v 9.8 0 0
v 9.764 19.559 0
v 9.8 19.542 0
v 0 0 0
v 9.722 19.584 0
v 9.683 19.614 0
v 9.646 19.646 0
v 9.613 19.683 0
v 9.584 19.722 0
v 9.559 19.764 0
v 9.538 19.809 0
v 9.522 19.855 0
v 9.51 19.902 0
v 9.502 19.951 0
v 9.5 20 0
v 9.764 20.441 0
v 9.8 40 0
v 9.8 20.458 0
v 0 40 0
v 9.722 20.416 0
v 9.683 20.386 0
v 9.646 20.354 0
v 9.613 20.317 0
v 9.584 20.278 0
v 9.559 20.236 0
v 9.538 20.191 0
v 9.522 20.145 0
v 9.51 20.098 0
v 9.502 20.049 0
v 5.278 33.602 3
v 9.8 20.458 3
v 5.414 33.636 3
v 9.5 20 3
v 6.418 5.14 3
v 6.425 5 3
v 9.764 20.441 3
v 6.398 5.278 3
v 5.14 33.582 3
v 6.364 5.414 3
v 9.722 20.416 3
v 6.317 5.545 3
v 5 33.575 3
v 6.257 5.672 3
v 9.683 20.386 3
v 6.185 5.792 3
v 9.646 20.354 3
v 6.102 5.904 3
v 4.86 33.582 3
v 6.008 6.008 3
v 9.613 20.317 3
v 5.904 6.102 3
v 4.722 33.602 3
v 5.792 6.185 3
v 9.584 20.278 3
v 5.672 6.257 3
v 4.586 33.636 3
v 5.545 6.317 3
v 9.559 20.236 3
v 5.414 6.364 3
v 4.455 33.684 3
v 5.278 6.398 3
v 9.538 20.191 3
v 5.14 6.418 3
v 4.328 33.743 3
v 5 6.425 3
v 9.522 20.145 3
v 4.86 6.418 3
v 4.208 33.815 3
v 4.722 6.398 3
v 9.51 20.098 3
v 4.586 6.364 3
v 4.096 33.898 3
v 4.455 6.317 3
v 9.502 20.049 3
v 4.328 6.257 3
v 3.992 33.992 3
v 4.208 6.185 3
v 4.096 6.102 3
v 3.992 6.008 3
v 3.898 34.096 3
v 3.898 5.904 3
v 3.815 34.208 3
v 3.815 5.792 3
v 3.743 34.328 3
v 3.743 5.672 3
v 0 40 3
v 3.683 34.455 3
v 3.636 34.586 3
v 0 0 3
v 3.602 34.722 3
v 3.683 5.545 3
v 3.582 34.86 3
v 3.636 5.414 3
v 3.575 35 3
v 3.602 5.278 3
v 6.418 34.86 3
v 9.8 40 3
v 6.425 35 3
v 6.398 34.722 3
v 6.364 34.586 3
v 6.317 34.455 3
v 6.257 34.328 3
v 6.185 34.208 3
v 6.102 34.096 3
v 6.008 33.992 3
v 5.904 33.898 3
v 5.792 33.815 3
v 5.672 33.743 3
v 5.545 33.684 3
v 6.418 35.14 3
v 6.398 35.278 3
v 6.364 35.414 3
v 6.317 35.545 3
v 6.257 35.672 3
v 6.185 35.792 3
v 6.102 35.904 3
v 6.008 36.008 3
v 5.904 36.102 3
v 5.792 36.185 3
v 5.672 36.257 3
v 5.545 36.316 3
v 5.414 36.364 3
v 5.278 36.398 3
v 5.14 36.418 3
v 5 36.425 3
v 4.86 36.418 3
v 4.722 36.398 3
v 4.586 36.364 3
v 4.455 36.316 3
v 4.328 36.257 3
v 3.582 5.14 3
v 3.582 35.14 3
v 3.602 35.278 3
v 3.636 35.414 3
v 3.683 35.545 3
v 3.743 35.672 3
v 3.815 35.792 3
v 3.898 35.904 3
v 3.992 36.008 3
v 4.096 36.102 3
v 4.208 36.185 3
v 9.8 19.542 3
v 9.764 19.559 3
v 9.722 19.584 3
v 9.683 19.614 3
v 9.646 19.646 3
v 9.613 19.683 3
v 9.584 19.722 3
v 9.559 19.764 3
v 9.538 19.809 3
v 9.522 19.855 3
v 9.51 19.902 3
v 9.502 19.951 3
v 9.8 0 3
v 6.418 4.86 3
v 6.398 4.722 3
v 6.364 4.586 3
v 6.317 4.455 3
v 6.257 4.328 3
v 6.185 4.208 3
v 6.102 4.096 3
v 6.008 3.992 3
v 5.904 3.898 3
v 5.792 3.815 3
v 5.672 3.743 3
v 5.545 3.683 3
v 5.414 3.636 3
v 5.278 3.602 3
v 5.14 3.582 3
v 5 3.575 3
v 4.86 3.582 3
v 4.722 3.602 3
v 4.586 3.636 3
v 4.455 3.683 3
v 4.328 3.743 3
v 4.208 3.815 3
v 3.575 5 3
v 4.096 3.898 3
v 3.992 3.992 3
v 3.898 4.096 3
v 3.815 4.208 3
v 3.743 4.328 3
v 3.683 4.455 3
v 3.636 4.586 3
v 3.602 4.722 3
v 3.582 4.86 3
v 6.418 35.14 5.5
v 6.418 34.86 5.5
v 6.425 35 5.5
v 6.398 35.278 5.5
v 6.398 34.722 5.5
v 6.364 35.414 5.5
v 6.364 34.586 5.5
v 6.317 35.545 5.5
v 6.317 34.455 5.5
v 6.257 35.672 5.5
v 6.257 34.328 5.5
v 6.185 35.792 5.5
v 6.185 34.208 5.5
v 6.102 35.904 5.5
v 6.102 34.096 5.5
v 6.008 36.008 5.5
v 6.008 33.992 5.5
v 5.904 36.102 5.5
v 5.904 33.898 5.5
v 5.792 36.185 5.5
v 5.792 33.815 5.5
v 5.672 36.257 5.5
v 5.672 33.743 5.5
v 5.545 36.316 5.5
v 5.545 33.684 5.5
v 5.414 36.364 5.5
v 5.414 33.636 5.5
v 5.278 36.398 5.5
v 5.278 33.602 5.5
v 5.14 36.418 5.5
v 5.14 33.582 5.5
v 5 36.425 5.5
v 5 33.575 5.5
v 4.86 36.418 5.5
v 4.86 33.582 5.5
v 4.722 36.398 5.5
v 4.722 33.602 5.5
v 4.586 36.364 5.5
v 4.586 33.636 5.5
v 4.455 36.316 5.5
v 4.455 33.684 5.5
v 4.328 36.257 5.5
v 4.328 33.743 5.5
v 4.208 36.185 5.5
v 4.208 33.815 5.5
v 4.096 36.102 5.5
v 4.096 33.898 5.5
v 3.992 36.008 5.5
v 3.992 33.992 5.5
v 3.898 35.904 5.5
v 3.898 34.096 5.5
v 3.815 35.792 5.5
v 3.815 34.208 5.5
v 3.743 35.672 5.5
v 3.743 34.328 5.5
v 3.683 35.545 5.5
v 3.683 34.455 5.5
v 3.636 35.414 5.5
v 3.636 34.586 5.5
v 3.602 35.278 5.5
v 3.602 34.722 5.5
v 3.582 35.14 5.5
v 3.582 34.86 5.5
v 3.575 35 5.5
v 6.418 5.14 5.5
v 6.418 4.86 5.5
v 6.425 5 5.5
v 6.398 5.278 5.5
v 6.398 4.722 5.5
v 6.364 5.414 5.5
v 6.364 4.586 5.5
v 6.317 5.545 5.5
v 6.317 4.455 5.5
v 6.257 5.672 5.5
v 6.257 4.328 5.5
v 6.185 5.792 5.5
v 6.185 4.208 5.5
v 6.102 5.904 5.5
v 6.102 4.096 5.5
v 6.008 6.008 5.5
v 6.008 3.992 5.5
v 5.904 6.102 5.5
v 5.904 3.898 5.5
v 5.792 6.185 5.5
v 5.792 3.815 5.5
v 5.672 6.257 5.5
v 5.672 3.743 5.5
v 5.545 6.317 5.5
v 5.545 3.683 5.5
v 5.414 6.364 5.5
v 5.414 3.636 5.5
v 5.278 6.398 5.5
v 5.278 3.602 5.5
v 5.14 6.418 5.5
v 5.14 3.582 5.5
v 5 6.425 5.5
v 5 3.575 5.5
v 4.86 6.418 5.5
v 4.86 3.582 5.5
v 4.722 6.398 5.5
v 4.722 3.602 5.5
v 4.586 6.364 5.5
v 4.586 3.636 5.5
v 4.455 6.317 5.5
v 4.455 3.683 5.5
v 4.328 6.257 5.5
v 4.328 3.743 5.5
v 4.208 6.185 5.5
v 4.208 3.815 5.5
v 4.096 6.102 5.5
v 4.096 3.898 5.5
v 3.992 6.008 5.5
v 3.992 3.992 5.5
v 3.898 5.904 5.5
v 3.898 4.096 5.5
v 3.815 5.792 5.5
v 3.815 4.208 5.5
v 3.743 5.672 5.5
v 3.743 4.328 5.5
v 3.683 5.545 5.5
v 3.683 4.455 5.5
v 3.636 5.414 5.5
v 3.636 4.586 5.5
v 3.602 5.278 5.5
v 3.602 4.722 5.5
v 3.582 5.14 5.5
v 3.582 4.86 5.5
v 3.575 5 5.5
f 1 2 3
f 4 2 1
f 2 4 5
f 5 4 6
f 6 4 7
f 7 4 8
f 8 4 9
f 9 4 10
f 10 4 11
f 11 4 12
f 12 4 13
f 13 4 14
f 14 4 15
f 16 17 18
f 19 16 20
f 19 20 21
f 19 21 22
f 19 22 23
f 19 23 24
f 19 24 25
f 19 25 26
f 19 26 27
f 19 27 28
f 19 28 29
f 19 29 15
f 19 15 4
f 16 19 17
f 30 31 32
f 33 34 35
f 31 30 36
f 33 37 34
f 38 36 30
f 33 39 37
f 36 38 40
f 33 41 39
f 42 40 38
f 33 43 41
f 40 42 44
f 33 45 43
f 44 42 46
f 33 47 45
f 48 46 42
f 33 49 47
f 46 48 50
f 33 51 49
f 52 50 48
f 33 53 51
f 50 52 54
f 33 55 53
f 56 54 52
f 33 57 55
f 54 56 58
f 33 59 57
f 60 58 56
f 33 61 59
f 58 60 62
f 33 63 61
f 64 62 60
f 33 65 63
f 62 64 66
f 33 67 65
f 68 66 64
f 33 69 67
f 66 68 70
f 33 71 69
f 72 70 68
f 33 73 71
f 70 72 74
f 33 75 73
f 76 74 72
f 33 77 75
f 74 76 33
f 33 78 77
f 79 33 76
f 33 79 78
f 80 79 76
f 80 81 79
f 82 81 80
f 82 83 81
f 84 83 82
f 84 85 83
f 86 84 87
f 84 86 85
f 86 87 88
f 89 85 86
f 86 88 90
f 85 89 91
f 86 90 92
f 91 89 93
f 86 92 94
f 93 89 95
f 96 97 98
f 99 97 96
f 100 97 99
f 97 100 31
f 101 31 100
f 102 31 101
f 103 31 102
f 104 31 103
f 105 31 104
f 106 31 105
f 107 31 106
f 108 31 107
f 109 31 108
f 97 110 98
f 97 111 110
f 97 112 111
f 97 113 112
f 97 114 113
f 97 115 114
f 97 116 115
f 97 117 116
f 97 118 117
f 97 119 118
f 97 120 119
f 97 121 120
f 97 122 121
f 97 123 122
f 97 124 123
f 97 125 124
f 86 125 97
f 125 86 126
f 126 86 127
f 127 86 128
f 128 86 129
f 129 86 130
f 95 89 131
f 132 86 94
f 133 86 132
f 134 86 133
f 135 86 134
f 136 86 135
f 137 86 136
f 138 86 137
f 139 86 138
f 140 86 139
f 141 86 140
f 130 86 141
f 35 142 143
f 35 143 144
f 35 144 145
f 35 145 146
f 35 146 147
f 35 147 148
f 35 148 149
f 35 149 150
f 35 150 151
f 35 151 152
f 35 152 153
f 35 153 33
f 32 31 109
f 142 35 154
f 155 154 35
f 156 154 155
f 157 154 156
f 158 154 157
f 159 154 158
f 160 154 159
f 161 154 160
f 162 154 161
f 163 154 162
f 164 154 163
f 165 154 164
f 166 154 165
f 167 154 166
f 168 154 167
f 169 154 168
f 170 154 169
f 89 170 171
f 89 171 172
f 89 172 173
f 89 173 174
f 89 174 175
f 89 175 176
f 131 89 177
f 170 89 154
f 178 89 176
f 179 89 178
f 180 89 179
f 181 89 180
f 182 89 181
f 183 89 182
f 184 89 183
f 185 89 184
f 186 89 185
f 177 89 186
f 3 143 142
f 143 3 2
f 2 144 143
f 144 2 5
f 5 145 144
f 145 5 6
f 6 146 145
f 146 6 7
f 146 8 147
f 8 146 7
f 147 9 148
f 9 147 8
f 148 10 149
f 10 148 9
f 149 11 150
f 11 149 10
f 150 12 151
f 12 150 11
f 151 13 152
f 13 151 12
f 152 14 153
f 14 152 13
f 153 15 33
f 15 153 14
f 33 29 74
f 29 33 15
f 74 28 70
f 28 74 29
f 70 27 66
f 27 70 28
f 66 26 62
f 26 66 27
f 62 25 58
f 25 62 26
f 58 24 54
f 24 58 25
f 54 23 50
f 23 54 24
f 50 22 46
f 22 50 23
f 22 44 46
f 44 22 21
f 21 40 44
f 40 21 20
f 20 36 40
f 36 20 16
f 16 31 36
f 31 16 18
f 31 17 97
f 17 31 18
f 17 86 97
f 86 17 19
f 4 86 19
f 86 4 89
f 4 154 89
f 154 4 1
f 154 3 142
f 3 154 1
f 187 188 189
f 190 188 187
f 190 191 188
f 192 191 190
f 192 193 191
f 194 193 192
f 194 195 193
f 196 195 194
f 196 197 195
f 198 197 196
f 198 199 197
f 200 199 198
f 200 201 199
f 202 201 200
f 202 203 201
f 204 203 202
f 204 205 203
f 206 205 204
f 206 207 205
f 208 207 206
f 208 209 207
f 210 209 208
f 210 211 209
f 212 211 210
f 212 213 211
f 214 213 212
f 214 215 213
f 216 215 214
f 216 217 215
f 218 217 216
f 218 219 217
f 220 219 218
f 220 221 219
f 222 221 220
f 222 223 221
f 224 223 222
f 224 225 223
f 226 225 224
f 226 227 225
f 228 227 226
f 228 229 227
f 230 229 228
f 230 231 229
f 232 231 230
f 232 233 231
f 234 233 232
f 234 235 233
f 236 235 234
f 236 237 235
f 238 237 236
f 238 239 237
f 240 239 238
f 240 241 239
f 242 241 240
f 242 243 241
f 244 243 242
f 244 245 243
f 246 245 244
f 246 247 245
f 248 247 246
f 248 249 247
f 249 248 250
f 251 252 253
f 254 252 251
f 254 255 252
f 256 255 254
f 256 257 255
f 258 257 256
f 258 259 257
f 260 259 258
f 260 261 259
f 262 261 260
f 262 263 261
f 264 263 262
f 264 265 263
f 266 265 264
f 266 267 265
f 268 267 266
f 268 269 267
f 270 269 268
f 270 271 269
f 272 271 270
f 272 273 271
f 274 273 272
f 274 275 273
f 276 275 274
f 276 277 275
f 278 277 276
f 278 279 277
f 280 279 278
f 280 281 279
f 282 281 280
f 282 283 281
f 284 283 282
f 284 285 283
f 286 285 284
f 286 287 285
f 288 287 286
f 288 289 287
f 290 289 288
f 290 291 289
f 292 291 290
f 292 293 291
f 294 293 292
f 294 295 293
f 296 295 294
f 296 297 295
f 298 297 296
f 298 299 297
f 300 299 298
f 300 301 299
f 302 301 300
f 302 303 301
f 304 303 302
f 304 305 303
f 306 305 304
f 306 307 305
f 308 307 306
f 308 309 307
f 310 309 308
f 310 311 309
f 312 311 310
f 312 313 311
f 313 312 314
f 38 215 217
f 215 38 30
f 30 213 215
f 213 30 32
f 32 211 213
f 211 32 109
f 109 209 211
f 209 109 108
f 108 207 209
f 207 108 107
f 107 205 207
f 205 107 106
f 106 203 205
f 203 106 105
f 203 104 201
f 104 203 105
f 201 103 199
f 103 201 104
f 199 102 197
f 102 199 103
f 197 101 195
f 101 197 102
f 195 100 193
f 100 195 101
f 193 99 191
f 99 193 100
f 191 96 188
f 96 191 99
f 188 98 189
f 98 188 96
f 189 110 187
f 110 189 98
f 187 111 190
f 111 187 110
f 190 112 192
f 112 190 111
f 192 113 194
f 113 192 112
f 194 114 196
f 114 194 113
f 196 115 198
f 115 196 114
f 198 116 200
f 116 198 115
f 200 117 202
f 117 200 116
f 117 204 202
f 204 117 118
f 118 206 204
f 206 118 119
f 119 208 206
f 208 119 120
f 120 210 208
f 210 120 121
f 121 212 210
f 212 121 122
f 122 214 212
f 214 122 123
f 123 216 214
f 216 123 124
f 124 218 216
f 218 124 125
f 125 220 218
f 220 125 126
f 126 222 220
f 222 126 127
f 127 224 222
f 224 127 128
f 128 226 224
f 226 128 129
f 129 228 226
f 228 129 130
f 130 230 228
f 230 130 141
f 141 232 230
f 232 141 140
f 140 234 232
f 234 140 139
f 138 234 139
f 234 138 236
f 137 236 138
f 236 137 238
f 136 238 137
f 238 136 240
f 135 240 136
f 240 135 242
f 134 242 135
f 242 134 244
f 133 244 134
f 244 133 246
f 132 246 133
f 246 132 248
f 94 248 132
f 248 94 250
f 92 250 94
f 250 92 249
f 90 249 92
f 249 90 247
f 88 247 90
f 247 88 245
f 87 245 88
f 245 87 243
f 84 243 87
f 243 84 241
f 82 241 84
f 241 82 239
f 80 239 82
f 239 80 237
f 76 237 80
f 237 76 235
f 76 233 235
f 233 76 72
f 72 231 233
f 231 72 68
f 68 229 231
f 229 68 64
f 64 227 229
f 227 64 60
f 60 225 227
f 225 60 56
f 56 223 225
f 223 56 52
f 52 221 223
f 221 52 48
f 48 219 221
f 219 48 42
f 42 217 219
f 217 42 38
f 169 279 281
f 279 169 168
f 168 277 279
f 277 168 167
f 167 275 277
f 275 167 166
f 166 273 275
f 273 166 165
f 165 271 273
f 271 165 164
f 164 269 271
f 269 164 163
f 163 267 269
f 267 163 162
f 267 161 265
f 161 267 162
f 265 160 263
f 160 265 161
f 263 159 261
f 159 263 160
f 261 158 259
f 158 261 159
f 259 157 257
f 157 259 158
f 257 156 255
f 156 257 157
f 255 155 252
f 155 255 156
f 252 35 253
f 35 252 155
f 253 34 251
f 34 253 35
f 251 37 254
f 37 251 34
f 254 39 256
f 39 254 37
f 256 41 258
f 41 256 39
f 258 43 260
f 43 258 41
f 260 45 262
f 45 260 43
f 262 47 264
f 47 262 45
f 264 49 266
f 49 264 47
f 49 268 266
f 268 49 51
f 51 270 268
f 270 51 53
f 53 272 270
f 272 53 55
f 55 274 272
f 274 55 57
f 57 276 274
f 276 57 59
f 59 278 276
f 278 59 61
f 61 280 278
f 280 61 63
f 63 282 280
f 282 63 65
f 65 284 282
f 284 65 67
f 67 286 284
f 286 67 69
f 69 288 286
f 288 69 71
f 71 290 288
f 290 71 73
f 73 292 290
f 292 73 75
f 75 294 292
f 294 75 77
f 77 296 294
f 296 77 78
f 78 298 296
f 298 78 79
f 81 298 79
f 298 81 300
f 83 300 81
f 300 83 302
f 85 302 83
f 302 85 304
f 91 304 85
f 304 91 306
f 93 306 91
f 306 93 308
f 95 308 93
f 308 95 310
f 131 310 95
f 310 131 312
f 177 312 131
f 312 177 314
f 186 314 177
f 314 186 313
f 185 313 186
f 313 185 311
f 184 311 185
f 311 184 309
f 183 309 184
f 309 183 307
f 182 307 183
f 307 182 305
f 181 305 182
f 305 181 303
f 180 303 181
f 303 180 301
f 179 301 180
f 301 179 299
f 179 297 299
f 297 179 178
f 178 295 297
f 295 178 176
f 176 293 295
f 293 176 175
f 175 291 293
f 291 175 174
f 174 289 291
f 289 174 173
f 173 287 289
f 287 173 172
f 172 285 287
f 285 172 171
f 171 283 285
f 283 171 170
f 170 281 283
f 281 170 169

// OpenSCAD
// file: TM4-inserts/common/params.scad
$fn = $preview ? 32 : 64;

// Value of kerf to apply when lasercutting things.
// Value is based on the experience using Epilog Mini machine in
// Google WFC Makerspace.
kerf = 0.2;

// Spacing between insert and miniatures bases to allow to slick fit.
insert_spacing = 0.2;
magnet_spacing = 0.15;

// Default values
//
// Default diameter of magnets used for my miniatures.
default_magnet_diameter = 3;
base_height = 3;
pin_height = 2.5;
// file: TM4-inserts/common/kow.scad
include <params.scad>;

module MagnetSockets(unit_type, only_diagonal = false) {
  baseSize = BaseSize(unit_type);

  translate([ 5, baseSize[1] - 5 ]) children(0);
  translate([ baseSize[0] - 5, 5 ]) children(0);

  if (!only_diagonal) {
    translate([ 5, 5 ]) children(0);
    translate([ baseSize[0] - 5, baseSize[1] - 5 ]) children(0);
  }
}

module Magnet(d = default_magnet_diameter, offset = 0) {
  circle(d = d + offset);
}

module BM4Sockets(unit_type, spacing, only_diagonal = false) {
  MagnetSockets(unit_type = unit_type, only_diagonal = only_diagonal) {
    Magnet(offset = spacing);
  }
}

module Base(unit_type, extraMargin = [ 0, 0 ]) {
  square(BaseSize(unit_type) + extraMargin);
}

function BaseSize(unit_type) = unit_type == "infantry"         ? [ 20, 20 ]
                               : unit_type == "heavy_infantry" ? [ 25, 25 ]
                               : unit_type == "cavalry"        ? [ 25, 50 ]
                               : unit_type == "lrginf"         ? [ 40, 40 ]
                               : unit_type == "lrgcav"         ? [ 50, 50 ]
                               : unit_type == "titan"          ? [ 75, 75 ]
                                                               : [ 10, 10 ];

function BaseNum(unit_type, unitSize) =
    unit_type == "infantry"  ? unitSize == "legion"     ? [ 10, 6 ]
                               : unitSize == "horde"    ? [ 10, 4 ]
                               : unitSize == "regiment" ? [ 5, 4 ]
                                                        : [ 5, 2 ]
    : unit_type == "cavalry" ? unitSize == "regiment" ? [ 5, 2 ] : [ 5, 1 ]
    : unit_type == "lrginf"  ? unitSize == "regiment" ? [ 3, 1 ] : [ 3, 2 ]
    : unit_type == "lrgcav"  ? unitSize == "regiment" ? [ 3, 1 ]
                               : unitSize == "horde"  ? [ 3, 2 ]
                                                      : [ 1, 1 ]
                             : [ 1, 1 ];
// file: TM4-inserts/libinsert.scad
include <common/kow.scad>;

module Pin() {
  Magnet(offset = -magnet_spacing);
}

module LInsert(size, unit_size, unit_type = "infantry") {
  base_num = BaseNum(unit_type, unit_size);
  base_size = BaseSize(unit_type);

  union() {
    width = size * base_size[0];
    length = base_num[1] * base_size[1];

    linear_extrude(height = base_height) {
      square(size =
                 [ width - 10 - insert_spacing, base_num[1] * base_size[1] ]);
      translate(v = [ 0, length - base_size[1] + insert_spacing]) {
        square(size = [ width - insert_spacing, base_size[1] - insert_spacing ]);
      }
    }
    translate(v = [ 0, 0, base_height ]) linear_extrude(height = pin_height) {
      translate(v = [ 5, 5 ]) Pin();
      translate(v = [ 5, length - 5 ]) Pin();
      translate(v = [ width - 5, length - 5 ]) Pin();

      if (size > 1) {
        translate(v = [ width - 5 - 10, 5 ]) Pin();
      }
    }
  }
}

module SideInsert(size, unit_size, unit_type = "infantry") {
  base_num = BaseNum(unit_type, unit_size);
  base_size = BaseSize(unit_type);

  union() {
    width = size * base_size[0];
    length = base_num[1] * base_size[1];

    linear_extrude(height = base_height) {
      difference() {
        square(size = [ width - insert_spacing, length ]);
        translate([width, length/2]) circle(0.5);
      }
    }
    translate(v = [ 0, 0, 3 ]) linear_extrude(height = pin_height) {
      translate(v = [ 5, 5 ]) Pin();
      translate(v = [ 5, length - 5 ]) Pin();
      if (size >= 1) {
        translate(v = [ width - 5, 5 ]) Pin();
        translate(v = [ width - 5, length - 5 ]) Pin();
      }
    }
  }
}
// main file
include <TM4-inserts/libinsert.scad>;

$fn = $preview ? 32 : 64;

SideInsert(0.5, "troop", "infantry");
